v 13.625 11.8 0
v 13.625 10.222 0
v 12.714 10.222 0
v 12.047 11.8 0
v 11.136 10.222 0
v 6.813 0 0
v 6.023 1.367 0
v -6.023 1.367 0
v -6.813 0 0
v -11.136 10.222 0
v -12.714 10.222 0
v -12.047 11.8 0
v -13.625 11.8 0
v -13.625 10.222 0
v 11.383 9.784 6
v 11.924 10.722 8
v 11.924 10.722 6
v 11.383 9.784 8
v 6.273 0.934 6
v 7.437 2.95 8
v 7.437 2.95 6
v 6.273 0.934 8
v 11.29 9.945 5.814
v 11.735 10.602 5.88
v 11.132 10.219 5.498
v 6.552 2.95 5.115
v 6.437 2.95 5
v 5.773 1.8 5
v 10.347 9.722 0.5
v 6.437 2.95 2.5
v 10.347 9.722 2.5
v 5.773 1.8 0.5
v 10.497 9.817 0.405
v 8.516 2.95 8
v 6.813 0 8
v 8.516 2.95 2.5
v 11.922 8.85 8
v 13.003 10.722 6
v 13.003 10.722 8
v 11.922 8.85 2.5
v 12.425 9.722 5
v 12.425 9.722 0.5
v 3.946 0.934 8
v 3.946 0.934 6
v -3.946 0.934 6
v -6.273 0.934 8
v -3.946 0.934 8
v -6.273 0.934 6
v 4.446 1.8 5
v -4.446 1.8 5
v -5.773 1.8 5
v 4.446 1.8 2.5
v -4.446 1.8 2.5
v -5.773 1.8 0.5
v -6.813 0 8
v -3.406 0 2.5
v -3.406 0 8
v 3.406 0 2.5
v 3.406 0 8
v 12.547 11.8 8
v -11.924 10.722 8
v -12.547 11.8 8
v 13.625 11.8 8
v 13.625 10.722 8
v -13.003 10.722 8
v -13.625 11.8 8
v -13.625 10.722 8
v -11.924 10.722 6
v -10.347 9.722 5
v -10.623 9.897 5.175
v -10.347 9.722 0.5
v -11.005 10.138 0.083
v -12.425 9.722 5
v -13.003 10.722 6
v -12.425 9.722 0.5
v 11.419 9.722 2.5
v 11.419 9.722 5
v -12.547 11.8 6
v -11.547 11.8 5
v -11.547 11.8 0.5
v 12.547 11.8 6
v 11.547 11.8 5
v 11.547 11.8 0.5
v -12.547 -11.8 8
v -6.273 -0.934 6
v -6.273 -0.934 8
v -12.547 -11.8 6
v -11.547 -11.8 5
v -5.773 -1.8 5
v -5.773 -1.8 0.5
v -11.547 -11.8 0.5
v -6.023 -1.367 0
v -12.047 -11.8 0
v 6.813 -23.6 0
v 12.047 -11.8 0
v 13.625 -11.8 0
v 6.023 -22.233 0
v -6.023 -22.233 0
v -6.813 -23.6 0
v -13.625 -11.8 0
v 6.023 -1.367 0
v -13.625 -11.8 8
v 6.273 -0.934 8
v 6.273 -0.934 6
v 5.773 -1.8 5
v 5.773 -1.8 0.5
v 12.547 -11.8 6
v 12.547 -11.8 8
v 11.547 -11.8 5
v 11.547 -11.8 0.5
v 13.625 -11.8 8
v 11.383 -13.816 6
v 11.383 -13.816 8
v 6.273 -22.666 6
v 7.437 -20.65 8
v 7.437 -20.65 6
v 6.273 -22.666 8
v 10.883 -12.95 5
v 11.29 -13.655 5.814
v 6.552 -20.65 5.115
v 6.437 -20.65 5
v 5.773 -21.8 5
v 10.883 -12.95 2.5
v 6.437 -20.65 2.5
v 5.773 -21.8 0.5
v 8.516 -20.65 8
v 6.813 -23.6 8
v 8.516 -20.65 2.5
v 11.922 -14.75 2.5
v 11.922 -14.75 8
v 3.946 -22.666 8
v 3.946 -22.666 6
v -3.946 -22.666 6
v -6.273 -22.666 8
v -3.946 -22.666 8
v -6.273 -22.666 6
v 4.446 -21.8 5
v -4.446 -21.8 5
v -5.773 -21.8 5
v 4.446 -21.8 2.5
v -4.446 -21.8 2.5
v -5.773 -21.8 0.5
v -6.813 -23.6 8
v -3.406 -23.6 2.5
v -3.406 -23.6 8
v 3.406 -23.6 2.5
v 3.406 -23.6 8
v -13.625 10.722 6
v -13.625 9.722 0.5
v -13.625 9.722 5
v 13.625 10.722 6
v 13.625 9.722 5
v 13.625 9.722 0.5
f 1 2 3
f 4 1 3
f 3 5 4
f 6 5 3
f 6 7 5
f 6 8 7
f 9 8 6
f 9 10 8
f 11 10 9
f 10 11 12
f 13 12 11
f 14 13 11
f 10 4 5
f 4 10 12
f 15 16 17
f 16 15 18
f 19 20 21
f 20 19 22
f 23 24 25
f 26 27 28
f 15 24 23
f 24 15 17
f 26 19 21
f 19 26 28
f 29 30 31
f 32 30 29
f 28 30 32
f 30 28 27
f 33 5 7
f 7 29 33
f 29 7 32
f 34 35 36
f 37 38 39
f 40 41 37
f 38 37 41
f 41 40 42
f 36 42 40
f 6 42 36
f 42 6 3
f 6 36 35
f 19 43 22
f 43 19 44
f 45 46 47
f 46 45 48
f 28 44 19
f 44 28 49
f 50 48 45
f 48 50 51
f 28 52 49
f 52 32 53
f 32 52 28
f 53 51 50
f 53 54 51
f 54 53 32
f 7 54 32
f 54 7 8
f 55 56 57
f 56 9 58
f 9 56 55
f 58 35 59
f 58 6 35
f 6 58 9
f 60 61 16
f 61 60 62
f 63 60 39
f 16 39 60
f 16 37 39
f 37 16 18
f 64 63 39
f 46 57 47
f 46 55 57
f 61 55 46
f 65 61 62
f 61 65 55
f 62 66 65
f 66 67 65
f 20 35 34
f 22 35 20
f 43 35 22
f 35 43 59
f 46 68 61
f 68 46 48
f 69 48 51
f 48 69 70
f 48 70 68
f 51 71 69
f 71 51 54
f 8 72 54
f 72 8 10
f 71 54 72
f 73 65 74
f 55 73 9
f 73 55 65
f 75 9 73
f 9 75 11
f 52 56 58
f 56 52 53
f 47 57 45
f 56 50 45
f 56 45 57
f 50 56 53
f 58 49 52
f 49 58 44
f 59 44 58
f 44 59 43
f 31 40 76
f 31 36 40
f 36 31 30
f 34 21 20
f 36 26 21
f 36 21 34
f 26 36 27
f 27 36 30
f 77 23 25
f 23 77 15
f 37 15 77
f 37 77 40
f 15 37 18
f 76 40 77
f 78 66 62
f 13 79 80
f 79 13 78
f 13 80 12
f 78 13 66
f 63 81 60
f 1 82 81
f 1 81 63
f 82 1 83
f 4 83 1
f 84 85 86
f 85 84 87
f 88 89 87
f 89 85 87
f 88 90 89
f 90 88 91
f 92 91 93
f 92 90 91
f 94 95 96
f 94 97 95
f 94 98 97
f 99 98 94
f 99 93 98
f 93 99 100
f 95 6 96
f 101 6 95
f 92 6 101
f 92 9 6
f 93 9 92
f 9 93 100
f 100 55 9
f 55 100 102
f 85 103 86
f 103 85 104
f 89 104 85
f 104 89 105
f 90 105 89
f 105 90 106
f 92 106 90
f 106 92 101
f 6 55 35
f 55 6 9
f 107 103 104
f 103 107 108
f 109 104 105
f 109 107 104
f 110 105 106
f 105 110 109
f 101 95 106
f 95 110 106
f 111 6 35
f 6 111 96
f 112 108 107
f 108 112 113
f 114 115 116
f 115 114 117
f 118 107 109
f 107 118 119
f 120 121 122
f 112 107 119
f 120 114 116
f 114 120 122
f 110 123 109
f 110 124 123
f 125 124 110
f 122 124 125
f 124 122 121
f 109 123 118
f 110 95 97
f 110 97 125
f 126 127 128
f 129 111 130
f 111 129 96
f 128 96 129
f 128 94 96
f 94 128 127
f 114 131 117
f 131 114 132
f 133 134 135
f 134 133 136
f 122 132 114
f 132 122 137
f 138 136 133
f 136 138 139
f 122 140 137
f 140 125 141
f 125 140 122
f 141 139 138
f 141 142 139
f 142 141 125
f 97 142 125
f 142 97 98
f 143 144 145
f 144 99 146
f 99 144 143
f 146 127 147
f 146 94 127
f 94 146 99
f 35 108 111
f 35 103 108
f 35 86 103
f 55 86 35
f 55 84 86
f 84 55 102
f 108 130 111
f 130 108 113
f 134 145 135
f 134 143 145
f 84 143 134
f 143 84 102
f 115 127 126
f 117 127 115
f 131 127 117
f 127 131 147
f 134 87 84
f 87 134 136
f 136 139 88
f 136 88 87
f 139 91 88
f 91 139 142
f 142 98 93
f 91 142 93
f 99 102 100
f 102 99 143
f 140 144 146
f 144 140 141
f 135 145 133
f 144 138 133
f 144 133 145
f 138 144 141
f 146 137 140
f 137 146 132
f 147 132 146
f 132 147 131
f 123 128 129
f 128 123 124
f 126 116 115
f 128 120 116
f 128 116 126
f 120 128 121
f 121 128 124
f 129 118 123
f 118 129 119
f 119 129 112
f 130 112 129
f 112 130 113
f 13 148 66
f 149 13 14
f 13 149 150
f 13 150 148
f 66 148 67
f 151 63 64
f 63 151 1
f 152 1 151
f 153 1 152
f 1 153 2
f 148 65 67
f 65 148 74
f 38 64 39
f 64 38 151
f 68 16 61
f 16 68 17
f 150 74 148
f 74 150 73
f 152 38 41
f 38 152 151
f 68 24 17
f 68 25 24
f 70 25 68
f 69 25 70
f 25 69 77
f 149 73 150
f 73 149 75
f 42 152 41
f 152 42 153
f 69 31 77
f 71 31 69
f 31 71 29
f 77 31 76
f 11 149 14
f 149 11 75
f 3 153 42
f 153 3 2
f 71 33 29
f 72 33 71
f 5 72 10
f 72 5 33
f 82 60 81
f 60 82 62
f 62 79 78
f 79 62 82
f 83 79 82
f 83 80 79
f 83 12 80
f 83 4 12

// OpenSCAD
// file: honeycomb_element.scad
$fn = 50;

radius = 13.6;
diameter = radius * 2;

h_inner = 10;
r_inner = h_inner * 2 / sqrt(3);

h_outer = 10 + 1.8;
r_outer = h_outer * 2 / sqrt(3);

h_thin = 10 + 1;
r_thin = h_thin * 2 / sqrt(3);

total_height = 8;

small_value = 0.1;

clips_height = 5;
clips_offset = 0.5;
clips_side_offset = 0.00;

module basic_polygon() {
  polygon(
    [
      [r_outer, total_height],
      [r_outer, 0],
      [r_inner + 0.5, 0],
      [r_inner, 0.5],
      [r_inner, total_height - 3],
      [r_inner + 1, total_height - 2],
      [r_inner + 1, total_height],
    ]
  );
}

module basic_model() {
  rotate_extrude($fn=6) {
    basic_polygon();
  }
}

module panel_with_clips(pin_1 = false, pin_2 = false, pin_3 = false, pin_4 = false, pin_5 = false, pin_6 = false, slot_1 = false, slot_2 = false, slot_3 = false, slot_4 = false, slot_5 = false, slot_6 = false) {

  difference() {
    basic_model();

    if (slot_1) {
      rotate([0, 0, 0])
        translate([0, -h_outer * 2, total_height - (clips_height + clips_offset) / 2])
          linear_extrude(height=clips_height + clips_offset, center=true)
            polygon([[clips_side_offset, h_outer / 2], [-clips_side_offset, h_outer / 2], [-r_outer / 2 - clips_side_offset, h_outer * 1.5], [r_outer / 2 + clips_side_offset, h_outer * 1.5]]);
    }

    if (slot_2) {
      rotate([0, 0, 60])
        translate([0, -h_outer * 2, total_height - (clips_height + clips_offset) / 2])
          linear_extrude(height=clips_height + clips_offset, center=true)
            polygon([[clips_side_offset, h_outer / 2], [-clips_side_offset, h_outer / 2], [-r_outer / 2 - clips_side_offset, h_outer * 1.5], [r_outer / 2 + clips_side_offset, h_outer * 1.5]]);
    }

    if (slot_3) {
      rotate([0, 0, 120])
        translate([0, -h_outer * 2, total_height - (clips_height + clips_offset) / 2])
          linear_extrude(height=clips_height + clips_offset, center=true)
            polygon([[clips_side_offset, h_outer / 2], [-clips_side_offset, h_outer / 2], [-r_outer / 2 - clips_side_offset, h_outer * 1.5], [r_outer / 2 + clips_side_offset, h_outer * 1.5]]);
    }

    if (slot_4) {
      rotate([0, 0, 180])
        translate([0, -h_outer * 2, total_height - (clips_height + clips_offset) / 2])
          linear_extrude(height=clips_height + clips_offset, center=true)
            polygon([[clips_side_offset, h_outer / 2], [-clips_side_offset, h_outer / 2], [-r_outer / 2 - clips_side_offset, h_outer * 1.5], [r_outer / 2 + clips_side_offset, h_outer * 1.5]]);
    }

    if (slot_5) {
      rotate([0, 0, 240])
        translate([0, -h_outer * 2, total_height - (clips_height + clips_offset) / 2])
          linear_extrude(height=clips_height + clips_offset, center=true)
            polygon([[clips_side_offset, h_outer / 2], [-clips_side_offset, h_outer / 2], [-r_outer / 2 - clips_side_offset, h_outer * 1.5], [r_outer / 2 + clips_side_offset, h_outer * 1.5]]);
    }

    if (slot_6) {
      rotate([0, 0, 300])
        translate([0, -h_outer * 2, total_height - (clips_height + clips_offset) / 2])
          linear_extrude(height=clips_height + clips_offset, center=true)
            polygon([[clips_side_offset, h_outer / 2], [-clips_side_offset, h_outer / 2], [-r_outer / 2 - clips_side_offset, h_outer * 1.5], [r_outer / 2 + clips_side_offset, h_outer * 1.5]]);
    }
  }

  if (pin_1) {
    intersection() {
      translate([0, -h_outer * 2, 0])
        basic_model();
      translate([0, 0, total_height - clips_height / 2]) {
        rotate([0, 0, -180])
          linear_extrude(height=clips_height, center=true)
            polygon([[0, h_outer / 2], [-r_outer / 2, h_outer * 1.5], [r_outer / 2, h_outer * 1.5]]);
      }
    }
  }

  if (pin_2) {
    intersection() {
      translate([r_outer * 1.5, -h_outer, 0])
        basic_model();
      translate([0, 0, total_height - clips_height / 2]) {
        rotate([0, 0, -120])
          linear_extrude(height=clips_height, center=true)
            polygon([[0, h_outer / 2], [-r_outer / 2, h_outer * 1.5], [r_outer / 2, h_outer * 1.5]]);
      }
    }
  }

  if (pin_3) {
    intersection() {
      translate([r_outer * 1.5, h_outer, 0])
        basic_model();
      translate([0, 0, total_height - clips_height / 2]) {
        rotate([0, 0, -60])
          linear_extrude(height=clips_height, center=true)
            polygon([[0, h_outer / 2], [-r_outer / 2, h_outer * 1.5], [r_outer / 2, h_outer * 1.5]]);
      }
    }
  }

  if (pin_4) {
    intersection() {
      translate([0, h_outer * 2, 0])
        basic_model();

      translate([0, 0, total_height - clips_height / 2]) {
        linear_extrude(height=clips_height, center=true)
          polygon([[0, h_outer / 2], [-r_outer / 2, h_outer * 1.5], [r_outer / 2, h_outer * 1.5]]);
      }
    }
  }

  if (pin_5) {
    intersection() {
      translate([-r_outer * 1.5, h_outer, 0])
        basic_model();
      translate([0, 0, total_height - clips_height / 2]) {
        rotate([0, 0, 60])
          linear_extrude(height=clips_height, center=true)
            polygon([[0, h_outer / 2], [-r_outer / 2, h_outer * 1.5], [r_outer / 2, h_outer * 1.5]]);
      }
    }
  }

  if (pin_6) {
    intersection() {
      translate([-r_outer * 1.5, -h_outer, 0])
        basic_model();

      translate([0, 0, total_height - clips_height / 2]) {
        rotate([0, 0, 120])
          linear_extrude(height=clips_height, center=true)
            polygon([[0, h_outer / 2], [-r_outer / 2, h_outer * 1.5], [r_outer / 2, h_outer * 1.5]]);
      }
    }
  }
}

// end honeycomb_element.scad
// main file
$fn = 50;

h_outer = 10+1.8;
r_outer = h_outer * 2/sqrt(3);


use <honeycomb_element.scad>;

module perimeter_top_item(left_slot=false,top_slot=false) {
  difference() {
    translate([0, h_outer, 0])
        panel_with_clips(slot_1=top_slot, slot_2=left_slot);  
    
    translate([0, 50+h_outer, 0])
        cube([100, 100, 100], center = true);
  }
  /*
  translate([-r_outer*1.5, 0, 0])
     panel_with_clips(slot_1=true, slot_2=true,  pin_5=true); 
  */
  translate([-r_outer*0, -h_outer, 0])
     panel_with_clips(slot_1=true, slot_2=true);   
  
    
  translate([0, h_outer-r_outer, 0])
      rotate([90, 0, 90])
        linear_extrude(height = r_outer * 2, center=true)
        basic_polygon();
    
}




module perimeter_bottom() {
    perimeter_top_item(left_slot=true,top_slot=true);
    /*
    translate([-3*r_outer, 0, 0])
    perimeter_top_item();

    translate([-6*r_outer, 0, 0])
    perimeter_top_item();    
    
    translate([-9*r_outer, 0, 0])
    perimeter_top_item();    
    */
}



perimeter_bottom();
